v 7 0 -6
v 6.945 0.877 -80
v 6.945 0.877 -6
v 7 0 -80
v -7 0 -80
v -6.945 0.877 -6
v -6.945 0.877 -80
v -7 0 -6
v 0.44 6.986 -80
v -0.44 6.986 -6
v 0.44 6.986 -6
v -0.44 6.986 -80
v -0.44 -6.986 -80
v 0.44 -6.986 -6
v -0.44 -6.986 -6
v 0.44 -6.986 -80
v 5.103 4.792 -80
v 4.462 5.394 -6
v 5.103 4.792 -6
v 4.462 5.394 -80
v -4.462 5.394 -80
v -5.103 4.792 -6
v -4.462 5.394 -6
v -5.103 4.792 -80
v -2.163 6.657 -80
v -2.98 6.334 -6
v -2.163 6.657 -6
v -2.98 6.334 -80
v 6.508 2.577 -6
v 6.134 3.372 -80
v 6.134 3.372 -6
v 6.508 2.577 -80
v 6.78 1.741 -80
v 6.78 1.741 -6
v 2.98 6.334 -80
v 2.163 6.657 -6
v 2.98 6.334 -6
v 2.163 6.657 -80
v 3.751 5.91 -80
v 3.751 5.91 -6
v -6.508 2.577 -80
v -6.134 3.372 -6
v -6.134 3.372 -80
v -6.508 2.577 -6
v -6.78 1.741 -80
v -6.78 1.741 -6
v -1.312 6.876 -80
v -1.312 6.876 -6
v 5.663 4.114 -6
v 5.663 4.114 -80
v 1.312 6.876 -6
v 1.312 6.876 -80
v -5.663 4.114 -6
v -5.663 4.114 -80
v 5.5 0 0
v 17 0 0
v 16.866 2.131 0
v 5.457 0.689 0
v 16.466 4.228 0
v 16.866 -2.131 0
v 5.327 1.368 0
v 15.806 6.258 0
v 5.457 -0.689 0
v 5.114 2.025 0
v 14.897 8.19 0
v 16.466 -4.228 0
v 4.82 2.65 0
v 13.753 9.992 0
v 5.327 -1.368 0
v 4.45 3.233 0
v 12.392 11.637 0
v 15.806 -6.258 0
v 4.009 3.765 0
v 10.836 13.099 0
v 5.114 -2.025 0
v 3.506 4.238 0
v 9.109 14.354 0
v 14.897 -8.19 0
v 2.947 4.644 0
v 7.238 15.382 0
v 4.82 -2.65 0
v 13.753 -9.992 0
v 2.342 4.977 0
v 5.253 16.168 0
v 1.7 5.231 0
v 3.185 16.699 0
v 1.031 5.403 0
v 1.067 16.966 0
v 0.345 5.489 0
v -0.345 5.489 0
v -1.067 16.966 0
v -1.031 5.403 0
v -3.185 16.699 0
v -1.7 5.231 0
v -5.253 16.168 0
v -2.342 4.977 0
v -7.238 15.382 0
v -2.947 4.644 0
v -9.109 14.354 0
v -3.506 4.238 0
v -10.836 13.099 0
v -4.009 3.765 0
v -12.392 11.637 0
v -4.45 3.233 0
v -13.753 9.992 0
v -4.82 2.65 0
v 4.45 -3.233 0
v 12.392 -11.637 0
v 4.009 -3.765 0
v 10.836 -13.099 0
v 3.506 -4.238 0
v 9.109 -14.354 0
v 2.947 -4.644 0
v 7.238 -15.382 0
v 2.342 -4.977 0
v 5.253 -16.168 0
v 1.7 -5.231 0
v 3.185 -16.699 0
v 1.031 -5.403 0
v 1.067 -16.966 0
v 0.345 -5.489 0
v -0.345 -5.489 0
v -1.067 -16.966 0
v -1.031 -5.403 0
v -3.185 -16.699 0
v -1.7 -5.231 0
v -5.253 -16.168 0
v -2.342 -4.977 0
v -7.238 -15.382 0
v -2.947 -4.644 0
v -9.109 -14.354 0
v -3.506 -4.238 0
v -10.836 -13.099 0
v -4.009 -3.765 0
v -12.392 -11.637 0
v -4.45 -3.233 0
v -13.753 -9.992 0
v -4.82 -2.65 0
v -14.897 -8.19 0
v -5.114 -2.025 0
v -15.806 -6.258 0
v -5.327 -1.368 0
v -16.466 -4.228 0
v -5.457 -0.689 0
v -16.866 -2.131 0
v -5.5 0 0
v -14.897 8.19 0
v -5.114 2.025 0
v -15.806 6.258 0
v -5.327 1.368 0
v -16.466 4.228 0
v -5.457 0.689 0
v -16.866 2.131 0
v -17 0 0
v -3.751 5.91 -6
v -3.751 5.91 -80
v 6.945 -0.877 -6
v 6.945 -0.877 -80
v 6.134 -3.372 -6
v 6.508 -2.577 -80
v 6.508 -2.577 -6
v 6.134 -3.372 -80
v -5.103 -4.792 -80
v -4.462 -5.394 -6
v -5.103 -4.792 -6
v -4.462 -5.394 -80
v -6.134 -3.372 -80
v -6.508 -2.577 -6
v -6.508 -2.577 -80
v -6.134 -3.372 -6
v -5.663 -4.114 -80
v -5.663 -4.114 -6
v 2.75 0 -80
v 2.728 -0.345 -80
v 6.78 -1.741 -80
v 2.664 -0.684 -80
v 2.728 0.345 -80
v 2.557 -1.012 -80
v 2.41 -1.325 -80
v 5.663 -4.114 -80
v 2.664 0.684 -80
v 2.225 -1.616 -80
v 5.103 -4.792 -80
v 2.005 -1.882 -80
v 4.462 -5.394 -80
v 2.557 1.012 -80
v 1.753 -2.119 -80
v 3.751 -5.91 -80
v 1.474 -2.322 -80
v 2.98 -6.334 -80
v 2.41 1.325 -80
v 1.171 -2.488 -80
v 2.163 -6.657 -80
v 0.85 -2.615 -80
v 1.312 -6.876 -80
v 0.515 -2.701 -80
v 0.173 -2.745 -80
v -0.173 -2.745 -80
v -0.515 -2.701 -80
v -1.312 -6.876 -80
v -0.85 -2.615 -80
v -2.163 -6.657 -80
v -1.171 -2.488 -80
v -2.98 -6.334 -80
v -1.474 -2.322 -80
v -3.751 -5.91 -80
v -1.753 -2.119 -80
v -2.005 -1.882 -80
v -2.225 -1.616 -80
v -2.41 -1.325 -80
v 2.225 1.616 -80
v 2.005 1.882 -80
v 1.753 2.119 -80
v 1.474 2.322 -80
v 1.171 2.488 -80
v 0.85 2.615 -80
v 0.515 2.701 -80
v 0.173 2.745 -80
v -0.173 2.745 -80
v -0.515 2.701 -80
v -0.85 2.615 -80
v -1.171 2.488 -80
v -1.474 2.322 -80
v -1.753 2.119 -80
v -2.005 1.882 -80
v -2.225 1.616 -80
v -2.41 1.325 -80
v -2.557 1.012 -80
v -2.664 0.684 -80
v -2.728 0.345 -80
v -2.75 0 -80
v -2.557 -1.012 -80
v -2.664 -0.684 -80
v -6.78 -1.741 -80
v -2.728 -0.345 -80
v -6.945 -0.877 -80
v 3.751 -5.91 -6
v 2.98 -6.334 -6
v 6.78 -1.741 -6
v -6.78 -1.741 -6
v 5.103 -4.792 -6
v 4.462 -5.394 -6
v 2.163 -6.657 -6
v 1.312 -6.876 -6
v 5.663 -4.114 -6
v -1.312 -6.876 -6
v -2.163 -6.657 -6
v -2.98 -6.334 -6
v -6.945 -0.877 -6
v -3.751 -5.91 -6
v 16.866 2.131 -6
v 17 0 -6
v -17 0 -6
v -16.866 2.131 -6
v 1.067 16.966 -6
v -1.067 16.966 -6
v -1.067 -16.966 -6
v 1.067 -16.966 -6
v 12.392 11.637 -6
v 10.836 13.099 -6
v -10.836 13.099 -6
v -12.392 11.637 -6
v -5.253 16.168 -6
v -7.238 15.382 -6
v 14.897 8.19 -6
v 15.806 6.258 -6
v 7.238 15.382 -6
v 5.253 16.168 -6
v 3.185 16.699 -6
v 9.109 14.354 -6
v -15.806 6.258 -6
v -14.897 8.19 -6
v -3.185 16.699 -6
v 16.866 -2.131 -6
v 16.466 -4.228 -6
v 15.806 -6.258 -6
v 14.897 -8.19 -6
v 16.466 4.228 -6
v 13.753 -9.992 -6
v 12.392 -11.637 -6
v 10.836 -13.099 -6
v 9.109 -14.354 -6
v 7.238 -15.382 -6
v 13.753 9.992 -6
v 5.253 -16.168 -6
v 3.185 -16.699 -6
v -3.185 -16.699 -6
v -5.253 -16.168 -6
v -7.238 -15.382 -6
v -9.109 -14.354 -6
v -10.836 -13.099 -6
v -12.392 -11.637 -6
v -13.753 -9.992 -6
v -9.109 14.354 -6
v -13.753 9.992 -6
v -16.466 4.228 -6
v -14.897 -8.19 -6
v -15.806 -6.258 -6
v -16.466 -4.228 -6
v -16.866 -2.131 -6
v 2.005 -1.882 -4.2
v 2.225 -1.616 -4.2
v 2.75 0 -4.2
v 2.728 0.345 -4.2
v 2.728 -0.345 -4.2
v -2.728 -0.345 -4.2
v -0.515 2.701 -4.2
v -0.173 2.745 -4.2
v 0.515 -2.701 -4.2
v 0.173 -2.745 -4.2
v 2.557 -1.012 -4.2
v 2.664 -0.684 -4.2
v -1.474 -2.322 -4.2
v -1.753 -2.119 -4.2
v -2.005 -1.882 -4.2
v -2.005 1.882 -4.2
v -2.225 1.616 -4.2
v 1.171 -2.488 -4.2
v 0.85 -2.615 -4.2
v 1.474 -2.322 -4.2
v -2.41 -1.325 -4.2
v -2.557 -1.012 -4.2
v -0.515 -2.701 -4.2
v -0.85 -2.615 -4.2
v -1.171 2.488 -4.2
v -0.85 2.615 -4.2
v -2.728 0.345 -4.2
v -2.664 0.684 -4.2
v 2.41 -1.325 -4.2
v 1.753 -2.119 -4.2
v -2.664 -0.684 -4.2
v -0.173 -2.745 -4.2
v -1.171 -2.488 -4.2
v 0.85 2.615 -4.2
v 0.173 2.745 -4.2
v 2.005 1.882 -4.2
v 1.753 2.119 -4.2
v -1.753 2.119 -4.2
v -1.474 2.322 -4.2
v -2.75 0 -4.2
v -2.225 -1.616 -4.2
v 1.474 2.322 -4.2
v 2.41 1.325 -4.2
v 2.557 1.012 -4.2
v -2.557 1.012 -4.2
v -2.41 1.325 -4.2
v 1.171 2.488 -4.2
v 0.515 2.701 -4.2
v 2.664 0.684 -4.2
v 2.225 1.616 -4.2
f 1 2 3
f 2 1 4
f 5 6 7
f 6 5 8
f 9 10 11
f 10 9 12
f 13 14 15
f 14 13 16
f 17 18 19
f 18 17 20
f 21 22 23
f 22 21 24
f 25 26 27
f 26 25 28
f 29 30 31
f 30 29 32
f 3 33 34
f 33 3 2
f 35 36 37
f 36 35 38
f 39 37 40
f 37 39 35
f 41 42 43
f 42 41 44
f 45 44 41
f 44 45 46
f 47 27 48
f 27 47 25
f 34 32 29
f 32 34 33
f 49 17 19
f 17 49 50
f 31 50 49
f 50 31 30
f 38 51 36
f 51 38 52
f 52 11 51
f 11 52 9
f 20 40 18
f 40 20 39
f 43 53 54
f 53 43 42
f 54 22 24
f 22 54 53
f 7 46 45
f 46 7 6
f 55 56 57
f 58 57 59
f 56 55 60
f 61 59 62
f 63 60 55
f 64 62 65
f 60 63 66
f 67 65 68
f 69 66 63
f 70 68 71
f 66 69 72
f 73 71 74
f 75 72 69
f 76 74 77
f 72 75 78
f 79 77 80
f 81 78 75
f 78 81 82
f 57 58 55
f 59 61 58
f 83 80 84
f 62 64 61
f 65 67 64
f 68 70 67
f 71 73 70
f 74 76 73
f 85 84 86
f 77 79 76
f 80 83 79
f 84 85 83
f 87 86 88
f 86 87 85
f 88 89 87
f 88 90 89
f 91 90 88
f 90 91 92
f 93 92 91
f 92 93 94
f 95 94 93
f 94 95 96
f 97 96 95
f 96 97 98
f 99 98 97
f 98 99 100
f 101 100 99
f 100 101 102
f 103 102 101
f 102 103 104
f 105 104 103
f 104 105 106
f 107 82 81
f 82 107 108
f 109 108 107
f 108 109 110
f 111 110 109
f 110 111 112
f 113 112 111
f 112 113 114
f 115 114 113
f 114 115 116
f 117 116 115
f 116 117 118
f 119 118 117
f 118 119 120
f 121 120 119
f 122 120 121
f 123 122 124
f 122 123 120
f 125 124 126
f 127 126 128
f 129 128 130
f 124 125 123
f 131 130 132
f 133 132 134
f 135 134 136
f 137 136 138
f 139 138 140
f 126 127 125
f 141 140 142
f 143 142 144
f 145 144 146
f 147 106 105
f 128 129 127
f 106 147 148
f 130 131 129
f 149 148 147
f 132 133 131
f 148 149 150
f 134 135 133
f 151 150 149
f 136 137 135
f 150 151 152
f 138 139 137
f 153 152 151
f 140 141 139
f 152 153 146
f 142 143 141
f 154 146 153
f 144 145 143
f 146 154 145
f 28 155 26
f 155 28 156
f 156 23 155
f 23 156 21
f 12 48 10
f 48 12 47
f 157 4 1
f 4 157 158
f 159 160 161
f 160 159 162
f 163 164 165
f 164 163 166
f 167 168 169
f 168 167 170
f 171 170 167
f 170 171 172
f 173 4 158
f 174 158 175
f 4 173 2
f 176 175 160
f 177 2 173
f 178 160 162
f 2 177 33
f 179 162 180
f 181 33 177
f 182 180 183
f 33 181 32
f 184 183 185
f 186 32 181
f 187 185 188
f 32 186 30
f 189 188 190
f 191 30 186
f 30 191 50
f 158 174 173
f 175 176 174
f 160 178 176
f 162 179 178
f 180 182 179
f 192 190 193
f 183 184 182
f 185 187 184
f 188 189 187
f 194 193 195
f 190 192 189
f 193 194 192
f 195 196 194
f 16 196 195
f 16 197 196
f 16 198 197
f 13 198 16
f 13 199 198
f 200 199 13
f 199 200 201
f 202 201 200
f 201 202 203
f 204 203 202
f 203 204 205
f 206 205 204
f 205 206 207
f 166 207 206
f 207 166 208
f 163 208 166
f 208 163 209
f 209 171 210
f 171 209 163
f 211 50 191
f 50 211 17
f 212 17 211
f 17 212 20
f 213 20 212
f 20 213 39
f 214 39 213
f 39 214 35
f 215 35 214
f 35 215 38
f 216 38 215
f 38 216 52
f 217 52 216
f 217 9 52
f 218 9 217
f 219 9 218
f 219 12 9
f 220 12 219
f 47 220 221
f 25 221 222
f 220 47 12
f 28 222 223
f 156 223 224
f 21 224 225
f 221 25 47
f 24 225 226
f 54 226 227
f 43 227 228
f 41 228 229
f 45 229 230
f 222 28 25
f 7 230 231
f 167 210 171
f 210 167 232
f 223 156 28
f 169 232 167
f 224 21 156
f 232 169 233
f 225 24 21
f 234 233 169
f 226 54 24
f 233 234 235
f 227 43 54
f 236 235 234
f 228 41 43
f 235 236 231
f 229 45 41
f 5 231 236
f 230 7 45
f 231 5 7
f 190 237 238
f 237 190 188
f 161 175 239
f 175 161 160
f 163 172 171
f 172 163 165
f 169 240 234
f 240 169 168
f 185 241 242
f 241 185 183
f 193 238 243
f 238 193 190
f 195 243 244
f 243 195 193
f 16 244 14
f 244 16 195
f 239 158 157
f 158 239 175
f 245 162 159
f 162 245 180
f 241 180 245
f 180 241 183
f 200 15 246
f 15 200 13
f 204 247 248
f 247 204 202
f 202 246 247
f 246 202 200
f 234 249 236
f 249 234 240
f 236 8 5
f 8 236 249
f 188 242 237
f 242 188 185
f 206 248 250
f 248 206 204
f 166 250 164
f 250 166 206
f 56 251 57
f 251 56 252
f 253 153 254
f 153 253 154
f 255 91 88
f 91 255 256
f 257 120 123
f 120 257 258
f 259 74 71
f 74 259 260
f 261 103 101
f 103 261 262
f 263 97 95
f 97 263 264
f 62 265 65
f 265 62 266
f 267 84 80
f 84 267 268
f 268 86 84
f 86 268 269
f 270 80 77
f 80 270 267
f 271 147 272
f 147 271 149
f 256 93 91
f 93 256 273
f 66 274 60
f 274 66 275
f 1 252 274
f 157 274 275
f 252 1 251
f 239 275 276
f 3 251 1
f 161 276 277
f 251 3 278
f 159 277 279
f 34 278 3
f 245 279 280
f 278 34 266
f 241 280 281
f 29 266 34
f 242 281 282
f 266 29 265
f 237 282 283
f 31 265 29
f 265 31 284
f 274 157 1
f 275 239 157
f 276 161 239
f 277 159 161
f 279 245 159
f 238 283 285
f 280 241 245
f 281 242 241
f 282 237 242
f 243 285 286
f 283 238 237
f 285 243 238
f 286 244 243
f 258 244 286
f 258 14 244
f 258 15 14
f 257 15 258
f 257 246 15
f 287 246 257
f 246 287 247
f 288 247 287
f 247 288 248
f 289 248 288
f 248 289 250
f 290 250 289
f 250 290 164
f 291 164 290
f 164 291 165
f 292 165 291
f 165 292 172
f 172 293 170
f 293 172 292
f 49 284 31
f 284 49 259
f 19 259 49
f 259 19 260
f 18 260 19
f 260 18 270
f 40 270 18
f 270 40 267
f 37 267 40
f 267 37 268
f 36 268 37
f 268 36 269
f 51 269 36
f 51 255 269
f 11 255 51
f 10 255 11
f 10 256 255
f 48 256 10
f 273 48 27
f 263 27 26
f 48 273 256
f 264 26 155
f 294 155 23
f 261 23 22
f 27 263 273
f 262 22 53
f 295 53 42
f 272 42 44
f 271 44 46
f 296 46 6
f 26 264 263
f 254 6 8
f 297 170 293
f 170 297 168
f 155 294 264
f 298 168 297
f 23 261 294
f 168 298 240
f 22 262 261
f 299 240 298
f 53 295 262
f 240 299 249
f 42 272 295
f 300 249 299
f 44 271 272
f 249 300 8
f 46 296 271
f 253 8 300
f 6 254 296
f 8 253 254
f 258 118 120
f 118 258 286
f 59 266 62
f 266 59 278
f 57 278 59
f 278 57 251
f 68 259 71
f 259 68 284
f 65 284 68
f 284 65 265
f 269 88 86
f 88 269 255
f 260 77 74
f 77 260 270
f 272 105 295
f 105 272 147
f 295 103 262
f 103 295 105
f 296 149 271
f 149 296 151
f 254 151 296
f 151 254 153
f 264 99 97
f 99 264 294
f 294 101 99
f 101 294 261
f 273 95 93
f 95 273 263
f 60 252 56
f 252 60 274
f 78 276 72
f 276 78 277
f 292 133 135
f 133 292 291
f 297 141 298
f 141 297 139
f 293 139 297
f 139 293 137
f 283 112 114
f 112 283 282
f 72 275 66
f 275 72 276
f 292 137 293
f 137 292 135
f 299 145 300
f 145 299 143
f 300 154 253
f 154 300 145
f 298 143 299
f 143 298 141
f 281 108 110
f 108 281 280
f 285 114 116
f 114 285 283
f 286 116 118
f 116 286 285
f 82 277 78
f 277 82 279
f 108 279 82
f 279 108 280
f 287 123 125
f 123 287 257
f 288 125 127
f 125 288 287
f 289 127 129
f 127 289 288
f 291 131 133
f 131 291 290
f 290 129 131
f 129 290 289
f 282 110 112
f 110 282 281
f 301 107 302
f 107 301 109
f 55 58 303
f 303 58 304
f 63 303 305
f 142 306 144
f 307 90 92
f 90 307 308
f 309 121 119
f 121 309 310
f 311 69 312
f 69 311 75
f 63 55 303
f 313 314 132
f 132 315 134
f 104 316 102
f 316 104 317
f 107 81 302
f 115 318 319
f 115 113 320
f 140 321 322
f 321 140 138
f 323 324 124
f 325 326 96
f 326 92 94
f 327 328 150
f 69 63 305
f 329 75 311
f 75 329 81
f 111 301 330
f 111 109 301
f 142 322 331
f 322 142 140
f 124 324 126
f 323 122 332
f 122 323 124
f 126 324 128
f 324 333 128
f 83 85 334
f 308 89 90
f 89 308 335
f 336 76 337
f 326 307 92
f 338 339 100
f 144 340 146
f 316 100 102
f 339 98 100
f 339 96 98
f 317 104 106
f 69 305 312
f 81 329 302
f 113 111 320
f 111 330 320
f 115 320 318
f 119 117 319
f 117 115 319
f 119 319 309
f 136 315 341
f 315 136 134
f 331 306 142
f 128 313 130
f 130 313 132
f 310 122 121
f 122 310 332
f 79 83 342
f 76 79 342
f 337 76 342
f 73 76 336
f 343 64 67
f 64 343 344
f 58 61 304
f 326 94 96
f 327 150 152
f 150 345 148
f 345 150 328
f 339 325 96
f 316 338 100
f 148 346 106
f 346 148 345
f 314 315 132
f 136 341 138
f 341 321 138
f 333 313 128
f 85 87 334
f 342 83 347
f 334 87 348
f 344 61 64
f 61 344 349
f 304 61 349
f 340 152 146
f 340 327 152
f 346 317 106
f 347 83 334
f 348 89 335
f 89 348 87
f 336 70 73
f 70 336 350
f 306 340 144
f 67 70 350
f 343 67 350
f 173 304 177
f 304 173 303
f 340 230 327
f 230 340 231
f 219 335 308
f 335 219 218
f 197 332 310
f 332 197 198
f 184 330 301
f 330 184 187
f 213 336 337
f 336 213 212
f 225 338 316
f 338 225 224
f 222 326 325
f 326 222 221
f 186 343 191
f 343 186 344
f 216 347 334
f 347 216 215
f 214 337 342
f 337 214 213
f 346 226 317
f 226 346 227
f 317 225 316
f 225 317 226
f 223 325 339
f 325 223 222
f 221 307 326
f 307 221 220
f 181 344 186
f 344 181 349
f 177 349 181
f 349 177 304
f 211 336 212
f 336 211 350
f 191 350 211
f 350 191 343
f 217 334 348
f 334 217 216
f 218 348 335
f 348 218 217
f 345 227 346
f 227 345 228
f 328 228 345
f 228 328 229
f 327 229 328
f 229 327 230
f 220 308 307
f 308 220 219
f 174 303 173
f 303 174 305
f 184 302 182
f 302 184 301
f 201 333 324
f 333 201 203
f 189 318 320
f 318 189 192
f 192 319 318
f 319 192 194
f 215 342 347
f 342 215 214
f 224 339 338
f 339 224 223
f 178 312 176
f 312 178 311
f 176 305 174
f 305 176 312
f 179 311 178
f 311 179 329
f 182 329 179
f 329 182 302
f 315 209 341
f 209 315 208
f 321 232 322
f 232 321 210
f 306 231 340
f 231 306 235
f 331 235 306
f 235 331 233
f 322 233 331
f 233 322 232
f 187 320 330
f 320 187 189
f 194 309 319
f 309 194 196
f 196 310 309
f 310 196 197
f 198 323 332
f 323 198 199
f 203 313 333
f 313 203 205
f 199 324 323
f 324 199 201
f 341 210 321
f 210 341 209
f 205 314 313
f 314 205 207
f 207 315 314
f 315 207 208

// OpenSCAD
$fn = 50;


difference() {
	union() {
		translate(v = [0, 0, -80.0000000000]) {
			cylinder(h = 80, r = 7.0000000000);
		}
		translate(v = [0, 0, -6.0000000000]) {
			cylinder(h = 6, r = 17.0000000000);
		}
	}
	union() {
		translate(v = [0, 0, 0]) {
			rotate(a = [0, 0, 0]) {
				difference() {
					union() {
						#translate(v = [0, 0, -80.0000000000]) {
							cylinder(h = 80, r = 2.2500000000);
						}
						#translate(v = [0, 0, -4.2000000000]) {
							cylinder(h = 4.2000000000, r1 = 2.7500000000, r2 = 5.5000000000);
						}
						#translate(v = [0, 0, -80.0000000000]) {
							cylinder(h = 80, r = 2.7500000000);
						}
						#translate(v = [0, 0, -80.0000000000]) {
							cylinder(h = 80, r = 2.2500000000);
						}
					}
					union();
				}
			}
		}
	}
}
